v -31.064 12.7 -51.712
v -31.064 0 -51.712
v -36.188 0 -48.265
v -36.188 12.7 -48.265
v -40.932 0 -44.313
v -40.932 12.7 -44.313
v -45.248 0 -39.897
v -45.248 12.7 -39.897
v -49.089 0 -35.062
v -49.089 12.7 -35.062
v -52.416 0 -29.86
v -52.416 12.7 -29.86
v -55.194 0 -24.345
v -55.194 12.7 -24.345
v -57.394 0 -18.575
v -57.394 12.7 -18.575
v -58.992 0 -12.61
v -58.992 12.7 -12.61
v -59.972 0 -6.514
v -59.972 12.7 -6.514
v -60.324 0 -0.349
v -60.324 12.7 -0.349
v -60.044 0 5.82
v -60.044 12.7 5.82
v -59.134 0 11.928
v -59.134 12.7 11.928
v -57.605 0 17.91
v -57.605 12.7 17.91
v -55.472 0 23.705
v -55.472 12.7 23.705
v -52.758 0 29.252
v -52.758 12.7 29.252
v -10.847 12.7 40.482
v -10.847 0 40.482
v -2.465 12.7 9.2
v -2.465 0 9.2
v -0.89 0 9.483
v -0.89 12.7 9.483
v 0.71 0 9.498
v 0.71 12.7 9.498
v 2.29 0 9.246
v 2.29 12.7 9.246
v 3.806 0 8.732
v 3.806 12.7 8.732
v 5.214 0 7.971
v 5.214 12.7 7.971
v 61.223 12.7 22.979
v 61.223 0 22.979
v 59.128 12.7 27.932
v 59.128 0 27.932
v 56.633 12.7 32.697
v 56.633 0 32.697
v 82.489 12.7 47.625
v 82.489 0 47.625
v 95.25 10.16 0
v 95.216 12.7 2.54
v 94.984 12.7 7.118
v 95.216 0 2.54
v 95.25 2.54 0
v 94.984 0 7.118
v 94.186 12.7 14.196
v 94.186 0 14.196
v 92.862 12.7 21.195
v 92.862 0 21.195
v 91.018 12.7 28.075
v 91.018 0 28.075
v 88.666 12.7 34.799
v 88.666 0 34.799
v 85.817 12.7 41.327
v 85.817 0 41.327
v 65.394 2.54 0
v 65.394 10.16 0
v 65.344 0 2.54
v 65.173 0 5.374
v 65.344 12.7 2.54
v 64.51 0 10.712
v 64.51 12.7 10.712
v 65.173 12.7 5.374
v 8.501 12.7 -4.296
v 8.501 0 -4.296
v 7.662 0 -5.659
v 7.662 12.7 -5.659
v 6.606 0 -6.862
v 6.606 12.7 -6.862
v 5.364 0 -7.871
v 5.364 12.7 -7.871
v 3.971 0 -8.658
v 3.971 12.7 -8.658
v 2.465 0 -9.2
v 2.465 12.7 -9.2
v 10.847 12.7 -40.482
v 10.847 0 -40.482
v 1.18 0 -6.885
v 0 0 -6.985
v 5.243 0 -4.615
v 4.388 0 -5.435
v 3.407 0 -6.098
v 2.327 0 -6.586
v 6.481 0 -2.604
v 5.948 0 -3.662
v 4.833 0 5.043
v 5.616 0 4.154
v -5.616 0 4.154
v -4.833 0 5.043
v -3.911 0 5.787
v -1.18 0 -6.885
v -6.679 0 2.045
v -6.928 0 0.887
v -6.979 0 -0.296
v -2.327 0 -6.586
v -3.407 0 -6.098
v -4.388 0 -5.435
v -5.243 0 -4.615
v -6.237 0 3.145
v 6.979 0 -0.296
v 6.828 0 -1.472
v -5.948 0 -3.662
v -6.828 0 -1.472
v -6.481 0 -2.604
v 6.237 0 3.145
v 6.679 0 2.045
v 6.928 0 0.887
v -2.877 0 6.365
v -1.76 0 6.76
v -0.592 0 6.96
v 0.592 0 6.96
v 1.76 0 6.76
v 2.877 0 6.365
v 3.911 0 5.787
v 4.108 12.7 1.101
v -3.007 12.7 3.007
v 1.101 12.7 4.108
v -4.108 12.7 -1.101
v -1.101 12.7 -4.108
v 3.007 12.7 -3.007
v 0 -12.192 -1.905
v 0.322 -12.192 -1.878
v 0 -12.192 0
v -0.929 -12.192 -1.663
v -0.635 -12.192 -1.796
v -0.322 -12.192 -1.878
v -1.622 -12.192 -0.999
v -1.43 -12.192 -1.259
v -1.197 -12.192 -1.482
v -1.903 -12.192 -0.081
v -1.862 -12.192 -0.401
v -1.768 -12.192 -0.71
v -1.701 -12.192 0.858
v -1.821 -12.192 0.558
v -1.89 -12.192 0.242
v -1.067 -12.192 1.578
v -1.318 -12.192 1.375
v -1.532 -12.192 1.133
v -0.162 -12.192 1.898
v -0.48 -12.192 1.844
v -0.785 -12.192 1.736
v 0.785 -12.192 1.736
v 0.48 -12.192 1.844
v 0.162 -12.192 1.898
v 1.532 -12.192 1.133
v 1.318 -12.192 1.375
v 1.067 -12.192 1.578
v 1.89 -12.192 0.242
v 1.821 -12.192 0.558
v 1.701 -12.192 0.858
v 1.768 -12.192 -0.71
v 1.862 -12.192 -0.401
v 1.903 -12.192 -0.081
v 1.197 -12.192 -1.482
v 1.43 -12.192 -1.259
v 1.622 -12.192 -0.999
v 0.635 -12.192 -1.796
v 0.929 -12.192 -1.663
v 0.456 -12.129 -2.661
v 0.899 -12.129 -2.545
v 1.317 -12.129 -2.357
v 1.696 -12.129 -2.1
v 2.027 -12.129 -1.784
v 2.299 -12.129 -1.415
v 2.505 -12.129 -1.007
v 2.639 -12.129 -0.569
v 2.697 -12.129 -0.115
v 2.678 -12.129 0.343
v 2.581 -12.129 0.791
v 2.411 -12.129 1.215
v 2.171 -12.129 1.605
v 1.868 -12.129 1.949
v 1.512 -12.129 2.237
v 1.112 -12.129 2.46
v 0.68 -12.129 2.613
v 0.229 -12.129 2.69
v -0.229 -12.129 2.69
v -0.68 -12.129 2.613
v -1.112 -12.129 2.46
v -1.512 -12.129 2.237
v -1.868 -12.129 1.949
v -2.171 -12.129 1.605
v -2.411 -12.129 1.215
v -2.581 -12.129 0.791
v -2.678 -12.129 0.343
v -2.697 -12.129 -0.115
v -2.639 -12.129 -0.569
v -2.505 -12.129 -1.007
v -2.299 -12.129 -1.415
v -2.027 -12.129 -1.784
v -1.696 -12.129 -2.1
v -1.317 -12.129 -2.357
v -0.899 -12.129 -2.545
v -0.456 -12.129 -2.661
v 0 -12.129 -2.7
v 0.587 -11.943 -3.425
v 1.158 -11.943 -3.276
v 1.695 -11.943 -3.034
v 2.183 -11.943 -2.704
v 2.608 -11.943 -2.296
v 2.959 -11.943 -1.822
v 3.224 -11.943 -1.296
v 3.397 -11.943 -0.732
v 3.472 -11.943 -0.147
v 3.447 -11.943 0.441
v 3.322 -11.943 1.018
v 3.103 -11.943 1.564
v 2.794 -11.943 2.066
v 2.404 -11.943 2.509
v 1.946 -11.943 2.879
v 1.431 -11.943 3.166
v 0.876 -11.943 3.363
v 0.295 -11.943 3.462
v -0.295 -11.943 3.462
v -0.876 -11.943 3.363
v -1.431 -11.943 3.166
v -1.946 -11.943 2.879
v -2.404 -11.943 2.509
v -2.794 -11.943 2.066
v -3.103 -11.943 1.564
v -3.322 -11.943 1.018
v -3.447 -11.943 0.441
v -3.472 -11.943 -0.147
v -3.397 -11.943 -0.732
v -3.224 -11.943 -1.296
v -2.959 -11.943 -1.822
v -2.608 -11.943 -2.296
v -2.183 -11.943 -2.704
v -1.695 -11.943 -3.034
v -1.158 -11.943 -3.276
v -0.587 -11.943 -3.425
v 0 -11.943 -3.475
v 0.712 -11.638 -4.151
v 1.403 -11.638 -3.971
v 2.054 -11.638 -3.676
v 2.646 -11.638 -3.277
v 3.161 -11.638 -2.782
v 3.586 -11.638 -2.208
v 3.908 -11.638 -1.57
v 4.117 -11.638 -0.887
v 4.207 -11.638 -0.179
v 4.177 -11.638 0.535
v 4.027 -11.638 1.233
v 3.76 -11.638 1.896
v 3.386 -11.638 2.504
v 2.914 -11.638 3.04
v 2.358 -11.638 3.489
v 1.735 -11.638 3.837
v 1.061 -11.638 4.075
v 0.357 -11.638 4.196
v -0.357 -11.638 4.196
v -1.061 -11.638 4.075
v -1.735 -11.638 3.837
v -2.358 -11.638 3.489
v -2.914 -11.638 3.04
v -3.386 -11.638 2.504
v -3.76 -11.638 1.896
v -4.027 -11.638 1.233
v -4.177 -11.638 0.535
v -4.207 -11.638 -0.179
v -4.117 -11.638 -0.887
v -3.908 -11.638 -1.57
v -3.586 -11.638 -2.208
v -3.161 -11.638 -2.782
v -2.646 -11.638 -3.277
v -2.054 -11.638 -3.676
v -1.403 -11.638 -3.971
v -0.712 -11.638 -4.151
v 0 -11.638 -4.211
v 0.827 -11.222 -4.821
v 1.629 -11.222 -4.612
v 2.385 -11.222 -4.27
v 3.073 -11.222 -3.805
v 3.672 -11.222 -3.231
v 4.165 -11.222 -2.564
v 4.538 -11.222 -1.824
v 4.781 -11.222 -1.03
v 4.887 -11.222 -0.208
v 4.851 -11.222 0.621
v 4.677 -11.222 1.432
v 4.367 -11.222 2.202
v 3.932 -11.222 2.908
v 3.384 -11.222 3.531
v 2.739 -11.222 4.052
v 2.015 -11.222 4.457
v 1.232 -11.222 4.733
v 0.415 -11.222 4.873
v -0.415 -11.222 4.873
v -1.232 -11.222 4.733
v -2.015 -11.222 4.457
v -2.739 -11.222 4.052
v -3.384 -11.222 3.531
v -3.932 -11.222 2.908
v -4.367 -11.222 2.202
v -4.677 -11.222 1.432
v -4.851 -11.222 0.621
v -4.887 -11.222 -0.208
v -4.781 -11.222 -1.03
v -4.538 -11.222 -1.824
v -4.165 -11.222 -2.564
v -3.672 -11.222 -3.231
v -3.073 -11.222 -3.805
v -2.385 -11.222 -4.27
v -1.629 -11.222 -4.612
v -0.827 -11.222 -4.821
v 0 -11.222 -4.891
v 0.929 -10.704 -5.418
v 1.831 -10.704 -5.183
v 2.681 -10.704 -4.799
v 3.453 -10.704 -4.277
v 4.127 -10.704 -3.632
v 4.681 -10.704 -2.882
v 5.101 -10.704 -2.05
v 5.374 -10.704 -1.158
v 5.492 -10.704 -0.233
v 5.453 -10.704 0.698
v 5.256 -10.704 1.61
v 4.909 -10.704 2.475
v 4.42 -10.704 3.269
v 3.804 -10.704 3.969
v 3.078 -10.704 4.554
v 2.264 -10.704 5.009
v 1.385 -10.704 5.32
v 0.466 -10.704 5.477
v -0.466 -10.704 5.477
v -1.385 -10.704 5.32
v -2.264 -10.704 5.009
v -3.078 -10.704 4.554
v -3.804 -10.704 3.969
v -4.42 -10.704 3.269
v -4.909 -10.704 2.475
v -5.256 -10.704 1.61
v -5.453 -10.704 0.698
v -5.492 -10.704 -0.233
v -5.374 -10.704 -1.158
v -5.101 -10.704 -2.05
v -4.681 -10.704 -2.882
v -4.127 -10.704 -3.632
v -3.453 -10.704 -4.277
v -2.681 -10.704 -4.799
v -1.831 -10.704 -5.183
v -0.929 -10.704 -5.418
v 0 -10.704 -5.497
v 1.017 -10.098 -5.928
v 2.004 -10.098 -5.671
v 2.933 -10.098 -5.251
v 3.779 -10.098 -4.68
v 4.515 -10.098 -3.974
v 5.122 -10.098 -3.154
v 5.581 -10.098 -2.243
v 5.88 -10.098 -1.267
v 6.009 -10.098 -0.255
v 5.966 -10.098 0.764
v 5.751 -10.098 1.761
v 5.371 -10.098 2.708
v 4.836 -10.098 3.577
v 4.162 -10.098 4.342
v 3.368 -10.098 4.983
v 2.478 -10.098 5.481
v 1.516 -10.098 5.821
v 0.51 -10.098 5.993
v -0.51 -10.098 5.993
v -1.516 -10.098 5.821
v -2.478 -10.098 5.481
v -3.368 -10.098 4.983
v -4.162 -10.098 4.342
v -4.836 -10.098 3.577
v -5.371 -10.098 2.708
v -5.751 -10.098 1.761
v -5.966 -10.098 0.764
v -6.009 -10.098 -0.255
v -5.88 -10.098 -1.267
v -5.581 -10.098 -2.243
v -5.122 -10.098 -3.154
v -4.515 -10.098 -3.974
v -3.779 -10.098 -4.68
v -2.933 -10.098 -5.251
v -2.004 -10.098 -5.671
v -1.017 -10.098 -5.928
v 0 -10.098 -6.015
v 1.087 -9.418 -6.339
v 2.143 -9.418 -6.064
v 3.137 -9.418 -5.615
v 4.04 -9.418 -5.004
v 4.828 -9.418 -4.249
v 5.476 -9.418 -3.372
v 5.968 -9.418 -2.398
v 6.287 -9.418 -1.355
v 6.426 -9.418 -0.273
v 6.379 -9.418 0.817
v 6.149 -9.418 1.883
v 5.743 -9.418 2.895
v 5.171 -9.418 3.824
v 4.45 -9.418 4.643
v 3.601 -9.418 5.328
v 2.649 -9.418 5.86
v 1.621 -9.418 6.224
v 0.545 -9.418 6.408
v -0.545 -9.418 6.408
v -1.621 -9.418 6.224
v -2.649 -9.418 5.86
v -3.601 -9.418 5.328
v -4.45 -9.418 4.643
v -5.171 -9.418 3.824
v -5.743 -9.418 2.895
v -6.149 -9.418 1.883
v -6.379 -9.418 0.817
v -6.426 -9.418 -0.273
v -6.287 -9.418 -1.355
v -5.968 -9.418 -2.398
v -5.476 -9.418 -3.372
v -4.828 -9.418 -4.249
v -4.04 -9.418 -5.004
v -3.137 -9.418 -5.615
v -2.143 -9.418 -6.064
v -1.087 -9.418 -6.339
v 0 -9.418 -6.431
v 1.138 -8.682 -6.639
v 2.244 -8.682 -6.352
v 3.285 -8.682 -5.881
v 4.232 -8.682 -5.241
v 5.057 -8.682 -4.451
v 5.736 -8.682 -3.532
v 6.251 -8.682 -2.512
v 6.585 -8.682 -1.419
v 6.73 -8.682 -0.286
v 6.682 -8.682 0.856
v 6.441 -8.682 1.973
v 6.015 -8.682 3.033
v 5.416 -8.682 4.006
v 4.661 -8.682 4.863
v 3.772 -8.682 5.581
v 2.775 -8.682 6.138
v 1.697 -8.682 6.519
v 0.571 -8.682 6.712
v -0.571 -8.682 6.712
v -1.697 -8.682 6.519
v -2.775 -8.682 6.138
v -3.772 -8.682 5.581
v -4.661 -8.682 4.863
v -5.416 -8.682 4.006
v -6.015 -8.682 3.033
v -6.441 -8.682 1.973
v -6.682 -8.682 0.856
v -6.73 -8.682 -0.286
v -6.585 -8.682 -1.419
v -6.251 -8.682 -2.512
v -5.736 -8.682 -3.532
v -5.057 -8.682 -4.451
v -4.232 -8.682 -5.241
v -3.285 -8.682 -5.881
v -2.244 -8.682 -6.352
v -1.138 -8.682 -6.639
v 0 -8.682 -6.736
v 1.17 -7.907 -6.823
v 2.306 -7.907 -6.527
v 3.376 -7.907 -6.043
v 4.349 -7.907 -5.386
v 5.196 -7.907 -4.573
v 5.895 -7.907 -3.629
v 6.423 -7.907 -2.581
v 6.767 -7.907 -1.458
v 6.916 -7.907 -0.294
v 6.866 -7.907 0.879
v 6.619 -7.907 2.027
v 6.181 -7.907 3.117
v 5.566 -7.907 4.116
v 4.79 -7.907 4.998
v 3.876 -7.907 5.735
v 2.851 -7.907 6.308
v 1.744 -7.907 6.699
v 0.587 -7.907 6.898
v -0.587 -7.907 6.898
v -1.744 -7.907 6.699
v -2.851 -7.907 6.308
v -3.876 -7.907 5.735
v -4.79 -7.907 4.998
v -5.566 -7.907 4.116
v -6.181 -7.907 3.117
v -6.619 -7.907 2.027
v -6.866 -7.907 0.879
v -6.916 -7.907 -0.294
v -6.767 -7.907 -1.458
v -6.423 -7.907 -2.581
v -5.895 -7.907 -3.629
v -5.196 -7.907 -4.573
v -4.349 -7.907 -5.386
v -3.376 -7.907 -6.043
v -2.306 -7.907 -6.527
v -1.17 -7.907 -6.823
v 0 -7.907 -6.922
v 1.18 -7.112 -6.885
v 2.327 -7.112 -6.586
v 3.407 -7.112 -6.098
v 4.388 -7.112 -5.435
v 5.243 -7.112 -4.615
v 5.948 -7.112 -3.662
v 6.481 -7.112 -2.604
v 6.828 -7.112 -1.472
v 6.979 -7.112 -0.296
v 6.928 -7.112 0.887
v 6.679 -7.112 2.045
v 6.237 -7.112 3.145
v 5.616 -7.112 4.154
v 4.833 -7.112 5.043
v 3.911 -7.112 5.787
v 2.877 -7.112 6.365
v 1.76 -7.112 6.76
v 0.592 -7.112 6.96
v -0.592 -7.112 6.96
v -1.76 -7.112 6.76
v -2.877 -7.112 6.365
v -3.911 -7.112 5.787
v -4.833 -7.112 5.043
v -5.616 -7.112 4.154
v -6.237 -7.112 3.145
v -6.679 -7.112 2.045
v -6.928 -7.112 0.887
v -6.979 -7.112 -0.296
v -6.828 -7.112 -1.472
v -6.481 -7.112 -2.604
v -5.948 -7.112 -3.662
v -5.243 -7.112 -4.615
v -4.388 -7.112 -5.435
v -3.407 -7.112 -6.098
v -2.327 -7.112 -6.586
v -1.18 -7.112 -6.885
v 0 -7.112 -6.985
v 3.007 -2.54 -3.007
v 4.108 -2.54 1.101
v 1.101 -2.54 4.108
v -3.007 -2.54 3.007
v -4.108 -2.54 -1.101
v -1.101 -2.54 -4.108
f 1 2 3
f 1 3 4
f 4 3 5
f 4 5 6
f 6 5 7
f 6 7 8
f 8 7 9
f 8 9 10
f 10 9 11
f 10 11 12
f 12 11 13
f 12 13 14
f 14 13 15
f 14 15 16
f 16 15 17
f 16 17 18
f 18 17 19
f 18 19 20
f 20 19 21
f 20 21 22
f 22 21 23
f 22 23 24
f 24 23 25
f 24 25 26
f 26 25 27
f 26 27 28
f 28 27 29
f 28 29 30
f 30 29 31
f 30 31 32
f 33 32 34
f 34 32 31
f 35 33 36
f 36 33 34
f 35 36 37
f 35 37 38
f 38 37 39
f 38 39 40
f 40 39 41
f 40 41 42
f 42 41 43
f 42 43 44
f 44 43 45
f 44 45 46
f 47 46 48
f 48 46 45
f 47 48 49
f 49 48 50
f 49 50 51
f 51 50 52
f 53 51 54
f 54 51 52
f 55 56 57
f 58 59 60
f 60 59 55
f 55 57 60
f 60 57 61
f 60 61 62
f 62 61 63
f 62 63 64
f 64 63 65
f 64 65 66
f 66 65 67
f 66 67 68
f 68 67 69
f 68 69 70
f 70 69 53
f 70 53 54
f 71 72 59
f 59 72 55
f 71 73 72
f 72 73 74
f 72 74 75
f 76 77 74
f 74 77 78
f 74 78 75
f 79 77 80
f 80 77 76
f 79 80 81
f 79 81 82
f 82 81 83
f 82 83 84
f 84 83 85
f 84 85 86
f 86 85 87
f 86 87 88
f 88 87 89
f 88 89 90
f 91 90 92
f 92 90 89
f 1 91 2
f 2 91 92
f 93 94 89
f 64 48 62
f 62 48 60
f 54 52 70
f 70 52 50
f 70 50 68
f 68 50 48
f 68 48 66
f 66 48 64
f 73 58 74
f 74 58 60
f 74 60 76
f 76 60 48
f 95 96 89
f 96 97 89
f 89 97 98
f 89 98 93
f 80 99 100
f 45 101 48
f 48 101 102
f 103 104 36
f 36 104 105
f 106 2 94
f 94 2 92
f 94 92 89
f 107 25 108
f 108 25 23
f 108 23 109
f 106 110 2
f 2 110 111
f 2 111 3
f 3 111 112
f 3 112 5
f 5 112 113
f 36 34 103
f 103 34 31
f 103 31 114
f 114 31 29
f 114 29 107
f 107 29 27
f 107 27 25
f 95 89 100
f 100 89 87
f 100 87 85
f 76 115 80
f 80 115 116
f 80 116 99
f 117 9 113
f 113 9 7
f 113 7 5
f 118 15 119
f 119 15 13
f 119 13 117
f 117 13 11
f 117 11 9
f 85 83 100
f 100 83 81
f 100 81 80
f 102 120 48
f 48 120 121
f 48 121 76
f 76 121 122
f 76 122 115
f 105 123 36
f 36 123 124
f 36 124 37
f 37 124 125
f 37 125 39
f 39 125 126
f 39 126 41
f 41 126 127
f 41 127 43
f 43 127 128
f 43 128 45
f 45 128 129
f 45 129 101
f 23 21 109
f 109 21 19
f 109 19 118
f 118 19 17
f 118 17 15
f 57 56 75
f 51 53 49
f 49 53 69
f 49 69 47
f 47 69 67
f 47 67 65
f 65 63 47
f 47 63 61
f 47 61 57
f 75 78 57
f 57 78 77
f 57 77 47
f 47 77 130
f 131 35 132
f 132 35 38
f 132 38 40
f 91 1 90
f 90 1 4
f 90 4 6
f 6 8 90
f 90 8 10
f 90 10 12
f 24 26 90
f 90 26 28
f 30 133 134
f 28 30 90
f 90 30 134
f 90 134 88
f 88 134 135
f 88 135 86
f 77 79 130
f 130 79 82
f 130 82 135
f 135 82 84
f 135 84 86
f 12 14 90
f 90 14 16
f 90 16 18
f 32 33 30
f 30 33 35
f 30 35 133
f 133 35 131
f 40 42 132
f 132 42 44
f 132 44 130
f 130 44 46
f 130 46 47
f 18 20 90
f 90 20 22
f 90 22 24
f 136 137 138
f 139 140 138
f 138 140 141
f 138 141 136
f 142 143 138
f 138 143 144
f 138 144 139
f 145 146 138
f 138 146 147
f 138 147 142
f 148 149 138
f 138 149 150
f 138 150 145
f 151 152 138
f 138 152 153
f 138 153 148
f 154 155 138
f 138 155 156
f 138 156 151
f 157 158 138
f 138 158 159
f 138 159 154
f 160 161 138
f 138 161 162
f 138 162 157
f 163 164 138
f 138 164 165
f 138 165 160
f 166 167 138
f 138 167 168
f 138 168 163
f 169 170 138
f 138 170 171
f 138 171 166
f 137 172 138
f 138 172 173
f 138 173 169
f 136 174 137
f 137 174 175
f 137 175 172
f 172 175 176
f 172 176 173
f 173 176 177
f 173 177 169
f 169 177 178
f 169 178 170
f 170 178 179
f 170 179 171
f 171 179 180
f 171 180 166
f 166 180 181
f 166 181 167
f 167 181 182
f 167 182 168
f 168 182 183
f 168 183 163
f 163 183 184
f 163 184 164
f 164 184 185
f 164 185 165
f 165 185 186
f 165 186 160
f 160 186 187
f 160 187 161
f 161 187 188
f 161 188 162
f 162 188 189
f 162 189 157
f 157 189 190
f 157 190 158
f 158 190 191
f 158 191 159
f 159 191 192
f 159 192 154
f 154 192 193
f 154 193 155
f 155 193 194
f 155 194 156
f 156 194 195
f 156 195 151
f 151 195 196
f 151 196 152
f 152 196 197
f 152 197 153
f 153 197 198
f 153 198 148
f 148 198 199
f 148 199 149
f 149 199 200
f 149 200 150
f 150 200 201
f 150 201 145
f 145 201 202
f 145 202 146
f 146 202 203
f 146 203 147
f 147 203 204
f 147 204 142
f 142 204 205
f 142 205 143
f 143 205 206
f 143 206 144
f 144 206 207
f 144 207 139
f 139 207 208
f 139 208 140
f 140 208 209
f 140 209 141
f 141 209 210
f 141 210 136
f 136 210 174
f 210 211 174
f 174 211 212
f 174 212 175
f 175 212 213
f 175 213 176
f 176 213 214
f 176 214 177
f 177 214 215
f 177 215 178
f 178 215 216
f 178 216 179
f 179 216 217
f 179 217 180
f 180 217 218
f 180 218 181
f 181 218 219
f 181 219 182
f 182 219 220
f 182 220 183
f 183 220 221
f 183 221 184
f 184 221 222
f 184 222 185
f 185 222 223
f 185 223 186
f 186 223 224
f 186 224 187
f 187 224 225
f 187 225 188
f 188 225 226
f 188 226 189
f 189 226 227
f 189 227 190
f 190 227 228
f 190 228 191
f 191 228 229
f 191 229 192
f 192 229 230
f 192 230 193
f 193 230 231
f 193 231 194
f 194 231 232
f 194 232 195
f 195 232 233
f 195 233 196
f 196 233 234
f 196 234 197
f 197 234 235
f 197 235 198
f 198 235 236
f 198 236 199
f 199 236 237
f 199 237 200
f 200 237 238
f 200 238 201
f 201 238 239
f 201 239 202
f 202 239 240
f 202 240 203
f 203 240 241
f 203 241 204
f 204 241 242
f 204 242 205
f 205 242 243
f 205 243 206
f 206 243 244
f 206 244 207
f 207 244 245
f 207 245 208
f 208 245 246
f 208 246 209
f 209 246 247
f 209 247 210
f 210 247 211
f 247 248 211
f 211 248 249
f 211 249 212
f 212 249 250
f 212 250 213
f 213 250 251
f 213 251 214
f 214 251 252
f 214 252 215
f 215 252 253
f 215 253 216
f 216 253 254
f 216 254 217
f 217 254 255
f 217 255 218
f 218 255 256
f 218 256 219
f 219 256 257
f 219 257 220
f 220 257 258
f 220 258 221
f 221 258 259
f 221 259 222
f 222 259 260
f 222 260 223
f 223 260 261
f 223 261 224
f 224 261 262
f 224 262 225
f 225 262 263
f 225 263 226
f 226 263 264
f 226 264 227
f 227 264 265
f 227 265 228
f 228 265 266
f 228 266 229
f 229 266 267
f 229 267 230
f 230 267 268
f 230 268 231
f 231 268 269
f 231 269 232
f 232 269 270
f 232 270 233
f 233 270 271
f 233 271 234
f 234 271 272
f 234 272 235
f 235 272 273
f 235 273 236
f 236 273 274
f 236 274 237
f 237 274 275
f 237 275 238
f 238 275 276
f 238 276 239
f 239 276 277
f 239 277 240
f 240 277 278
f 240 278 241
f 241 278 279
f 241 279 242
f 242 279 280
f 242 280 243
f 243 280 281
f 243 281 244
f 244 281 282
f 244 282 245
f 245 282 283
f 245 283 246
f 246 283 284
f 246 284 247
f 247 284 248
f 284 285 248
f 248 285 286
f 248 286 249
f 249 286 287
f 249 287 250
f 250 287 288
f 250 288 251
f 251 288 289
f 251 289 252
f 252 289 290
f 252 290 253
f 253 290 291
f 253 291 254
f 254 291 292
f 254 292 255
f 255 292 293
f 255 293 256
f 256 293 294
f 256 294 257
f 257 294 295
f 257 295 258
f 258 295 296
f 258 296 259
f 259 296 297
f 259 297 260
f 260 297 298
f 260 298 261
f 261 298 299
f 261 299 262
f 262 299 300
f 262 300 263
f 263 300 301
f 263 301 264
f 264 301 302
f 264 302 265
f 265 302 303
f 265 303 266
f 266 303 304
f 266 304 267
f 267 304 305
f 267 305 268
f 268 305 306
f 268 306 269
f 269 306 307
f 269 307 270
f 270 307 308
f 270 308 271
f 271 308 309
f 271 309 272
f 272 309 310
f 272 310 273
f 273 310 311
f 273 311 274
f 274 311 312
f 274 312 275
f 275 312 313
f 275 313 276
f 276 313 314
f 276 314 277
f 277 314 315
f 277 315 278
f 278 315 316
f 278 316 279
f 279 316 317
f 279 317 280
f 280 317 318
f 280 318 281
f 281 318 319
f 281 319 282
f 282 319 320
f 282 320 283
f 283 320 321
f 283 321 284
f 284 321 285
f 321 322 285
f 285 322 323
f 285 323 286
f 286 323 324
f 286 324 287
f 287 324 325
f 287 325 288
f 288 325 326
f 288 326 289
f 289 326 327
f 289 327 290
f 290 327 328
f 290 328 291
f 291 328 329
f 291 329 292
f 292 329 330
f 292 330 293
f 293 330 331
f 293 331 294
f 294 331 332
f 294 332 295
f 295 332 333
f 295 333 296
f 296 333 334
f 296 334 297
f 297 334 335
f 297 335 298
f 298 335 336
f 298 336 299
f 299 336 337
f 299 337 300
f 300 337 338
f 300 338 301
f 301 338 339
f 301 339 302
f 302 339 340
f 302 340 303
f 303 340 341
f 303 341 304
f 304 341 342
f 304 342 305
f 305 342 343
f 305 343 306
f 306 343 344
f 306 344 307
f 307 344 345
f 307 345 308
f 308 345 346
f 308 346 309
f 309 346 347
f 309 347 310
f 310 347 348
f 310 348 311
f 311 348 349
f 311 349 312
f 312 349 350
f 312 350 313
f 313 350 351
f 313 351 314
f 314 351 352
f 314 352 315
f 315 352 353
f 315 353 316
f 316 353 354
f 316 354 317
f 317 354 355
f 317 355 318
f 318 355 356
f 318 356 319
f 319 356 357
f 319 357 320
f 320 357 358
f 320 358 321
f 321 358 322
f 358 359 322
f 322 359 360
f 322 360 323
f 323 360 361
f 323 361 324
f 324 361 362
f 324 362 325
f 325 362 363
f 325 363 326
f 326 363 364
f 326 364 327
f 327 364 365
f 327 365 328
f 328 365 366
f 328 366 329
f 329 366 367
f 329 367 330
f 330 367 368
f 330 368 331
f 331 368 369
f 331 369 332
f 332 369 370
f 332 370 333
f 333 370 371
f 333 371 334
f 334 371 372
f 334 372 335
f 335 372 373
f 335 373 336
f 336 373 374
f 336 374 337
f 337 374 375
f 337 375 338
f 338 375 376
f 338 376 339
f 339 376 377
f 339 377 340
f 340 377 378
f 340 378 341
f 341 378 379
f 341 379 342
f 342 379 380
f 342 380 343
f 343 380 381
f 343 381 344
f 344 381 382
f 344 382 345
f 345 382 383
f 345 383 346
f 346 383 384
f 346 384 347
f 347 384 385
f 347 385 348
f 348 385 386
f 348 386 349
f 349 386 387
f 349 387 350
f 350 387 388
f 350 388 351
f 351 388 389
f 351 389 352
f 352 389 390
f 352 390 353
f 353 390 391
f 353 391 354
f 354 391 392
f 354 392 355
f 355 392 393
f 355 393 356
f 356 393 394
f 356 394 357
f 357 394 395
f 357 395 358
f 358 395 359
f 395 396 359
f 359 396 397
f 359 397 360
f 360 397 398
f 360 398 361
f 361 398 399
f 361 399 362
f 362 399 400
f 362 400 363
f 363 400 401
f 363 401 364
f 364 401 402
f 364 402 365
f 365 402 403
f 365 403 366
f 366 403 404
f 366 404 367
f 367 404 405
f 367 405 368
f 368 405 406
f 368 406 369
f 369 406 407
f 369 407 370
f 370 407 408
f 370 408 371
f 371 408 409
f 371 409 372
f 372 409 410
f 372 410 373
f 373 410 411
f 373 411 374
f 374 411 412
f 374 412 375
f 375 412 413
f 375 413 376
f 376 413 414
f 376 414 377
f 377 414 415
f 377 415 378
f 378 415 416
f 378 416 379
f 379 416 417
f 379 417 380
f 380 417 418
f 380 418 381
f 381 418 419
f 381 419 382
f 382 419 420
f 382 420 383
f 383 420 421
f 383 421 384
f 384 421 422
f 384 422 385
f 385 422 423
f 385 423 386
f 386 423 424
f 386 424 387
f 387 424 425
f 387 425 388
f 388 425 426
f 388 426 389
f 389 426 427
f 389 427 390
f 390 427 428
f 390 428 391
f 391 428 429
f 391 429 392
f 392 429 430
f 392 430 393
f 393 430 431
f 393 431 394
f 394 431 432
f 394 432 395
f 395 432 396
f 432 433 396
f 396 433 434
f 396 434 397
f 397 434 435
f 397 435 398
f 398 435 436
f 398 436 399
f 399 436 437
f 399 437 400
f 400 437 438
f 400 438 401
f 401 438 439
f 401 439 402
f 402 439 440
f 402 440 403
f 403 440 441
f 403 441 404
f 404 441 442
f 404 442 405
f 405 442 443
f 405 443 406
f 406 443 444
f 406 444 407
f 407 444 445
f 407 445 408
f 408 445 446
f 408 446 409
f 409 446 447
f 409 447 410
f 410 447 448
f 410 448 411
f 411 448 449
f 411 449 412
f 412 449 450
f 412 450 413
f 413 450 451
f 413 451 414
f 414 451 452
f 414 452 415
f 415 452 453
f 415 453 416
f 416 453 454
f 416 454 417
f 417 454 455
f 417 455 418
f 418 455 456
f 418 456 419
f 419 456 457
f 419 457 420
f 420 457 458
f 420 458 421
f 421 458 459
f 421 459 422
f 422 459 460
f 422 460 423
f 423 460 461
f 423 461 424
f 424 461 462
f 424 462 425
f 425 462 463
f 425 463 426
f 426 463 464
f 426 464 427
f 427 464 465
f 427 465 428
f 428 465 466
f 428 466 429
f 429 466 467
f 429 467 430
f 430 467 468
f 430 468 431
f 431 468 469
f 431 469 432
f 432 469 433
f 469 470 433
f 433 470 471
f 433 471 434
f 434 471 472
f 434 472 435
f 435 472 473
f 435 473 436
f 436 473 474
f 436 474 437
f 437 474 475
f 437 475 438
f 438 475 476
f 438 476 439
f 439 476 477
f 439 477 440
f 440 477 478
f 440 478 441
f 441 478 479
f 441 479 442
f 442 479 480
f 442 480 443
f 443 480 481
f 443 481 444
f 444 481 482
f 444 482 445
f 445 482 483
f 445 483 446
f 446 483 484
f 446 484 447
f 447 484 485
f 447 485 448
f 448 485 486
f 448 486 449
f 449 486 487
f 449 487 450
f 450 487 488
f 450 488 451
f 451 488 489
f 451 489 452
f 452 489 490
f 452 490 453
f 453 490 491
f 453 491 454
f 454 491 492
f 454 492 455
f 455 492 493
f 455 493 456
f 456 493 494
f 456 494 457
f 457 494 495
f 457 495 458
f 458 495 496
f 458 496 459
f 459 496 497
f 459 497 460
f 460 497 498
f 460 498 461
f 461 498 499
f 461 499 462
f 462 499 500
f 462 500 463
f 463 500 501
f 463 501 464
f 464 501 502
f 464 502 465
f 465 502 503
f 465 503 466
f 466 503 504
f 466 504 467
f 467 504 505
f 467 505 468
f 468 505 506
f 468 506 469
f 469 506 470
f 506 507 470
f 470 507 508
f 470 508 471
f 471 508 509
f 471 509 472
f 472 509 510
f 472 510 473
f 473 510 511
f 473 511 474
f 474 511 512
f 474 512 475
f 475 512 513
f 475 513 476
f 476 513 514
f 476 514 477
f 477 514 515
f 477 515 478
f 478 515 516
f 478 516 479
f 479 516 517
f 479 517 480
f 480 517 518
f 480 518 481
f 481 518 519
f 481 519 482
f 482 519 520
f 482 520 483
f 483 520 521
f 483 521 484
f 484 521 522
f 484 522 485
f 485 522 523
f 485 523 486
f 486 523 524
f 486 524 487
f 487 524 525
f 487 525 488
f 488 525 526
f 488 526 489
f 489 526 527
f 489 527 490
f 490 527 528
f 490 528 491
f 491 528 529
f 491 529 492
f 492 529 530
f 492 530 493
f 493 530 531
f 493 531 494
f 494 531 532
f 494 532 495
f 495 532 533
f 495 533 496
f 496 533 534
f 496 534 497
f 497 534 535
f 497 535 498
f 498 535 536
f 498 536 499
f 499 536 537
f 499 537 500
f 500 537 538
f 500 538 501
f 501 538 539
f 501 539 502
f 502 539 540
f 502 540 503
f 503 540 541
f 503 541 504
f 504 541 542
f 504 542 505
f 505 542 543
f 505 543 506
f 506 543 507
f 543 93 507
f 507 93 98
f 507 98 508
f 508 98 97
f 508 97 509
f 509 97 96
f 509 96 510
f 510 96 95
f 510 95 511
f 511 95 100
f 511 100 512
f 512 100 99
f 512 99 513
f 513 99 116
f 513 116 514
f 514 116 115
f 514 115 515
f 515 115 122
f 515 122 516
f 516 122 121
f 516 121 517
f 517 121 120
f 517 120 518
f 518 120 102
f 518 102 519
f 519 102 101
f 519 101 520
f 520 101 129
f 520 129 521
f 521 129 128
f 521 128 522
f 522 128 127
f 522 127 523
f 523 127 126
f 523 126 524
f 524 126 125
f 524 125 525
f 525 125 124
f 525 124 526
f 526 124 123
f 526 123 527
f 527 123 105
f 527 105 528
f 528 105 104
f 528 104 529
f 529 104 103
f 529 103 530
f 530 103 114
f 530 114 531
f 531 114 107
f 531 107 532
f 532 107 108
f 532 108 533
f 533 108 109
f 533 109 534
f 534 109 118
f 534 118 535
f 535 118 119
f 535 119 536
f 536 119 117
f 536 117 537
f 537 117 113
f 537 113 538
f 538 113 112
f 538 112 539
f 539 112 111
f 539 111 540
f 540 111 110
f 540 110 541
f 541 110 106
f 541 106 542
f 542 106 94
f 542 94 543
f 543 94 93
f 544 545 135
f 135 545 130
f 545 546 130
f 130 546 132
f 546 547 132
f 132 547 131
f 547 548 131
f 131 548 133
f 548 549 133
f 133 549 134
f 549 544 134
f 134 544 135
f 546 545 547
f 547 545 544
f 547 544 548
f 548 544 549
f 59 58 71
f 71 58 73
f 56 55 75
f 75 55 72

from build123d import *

# Parameters (mm, degrees)
BOSS_EXTRUDE1_DEPTH = 12.7
CUT_EXTRUDE2_DEPTH  = 15.24
CHAMFER1_SIZE       = 2.54


with BuildPart() as part:
    # Sketch1 → Boss-Extrude1 (new body)
    with BuildSketch(Plane(origin=(0, 0, 0), x_dir=(1, 0, 0), z_dir=(0, 1, 0))):
        with BuildLine():
            Line((65.393705137, 0), (95.25, 0))
            ThreePointArc((95.25, 0), (92.004434954, -24.652514046), (82.48891971, -47.625))
            Line((82.48891971, -47.625), (56.632609896, -32.696852568))
            ThreePointArc((56.632609896, -32.696852568), (59.12802761, -27.932293541), (61.223461988, -22.978780943))
            Line((61.223461988, -22.978780943), (5.214104757, -7.971118904))
            ThreePointArc((5.214104757, -7.971118904), (1.505608988, -9.405252074), (-2.465251405, -9.200443495))
            Line((-2.465251405, -9.200443495), (-10.84710618, -40.48195138))
            Line((-10.84710618, -40.48195138), (-52.758242936, -29.251896132))
            ThreePointArc((-52.758242936, -29.251896132), (-58.269475471, 15.613258896), (-31.064030575, 51.712006627))
            Line((-31.064030575, 51.712006627), (10.84710618, 40.48195138))
            Line((10.84710618, 40.48195138), (2.465251405, 9.200443495))
            ThreePointArc((2.465251405, 9.200443495), (6.006521669, 7.392382731), (8.501106629, 4.296139089))
            Line((8.501106629, 4.296139089), (64.510463861, -10.711522949))
            ThreePointArc((64.510463861, -10.711522949), (65.172520756, -5.373938012), (65.393705137, 0))
        make_face()
    extrude(amount=BOSS_EXTRUDE1_DEPTH)

    # Sketch2 → Revolve1 (revolve)
    with BuildSketch(Plane.XY, mode=Mode.PRIVATE) as revolve1_sk:
        with BuildLine():
            Line((6.985, 0), (0, 0))
            Line((0, 0), (0, -12.192))
            Line((0, -12.192), (1.905, -12.192))
            ThreePointArc((1.905, -12.192), (5.497102448, -10.704102448), (6.985, -7.112))
            Line((6.985, -7.112), (6.985, 0))
        make_face()
    revolve(revolve1_sk.sketch.rotate(Axis((0, -12.192, 0), (0, 1, 0)), 90), axis=Axis((0, -12.192, 0), (0, 1, 0)))

    # Sketch5 → Cut-Extrude2 (cut)
    with BuildSketch(Plane(origin=(0, 12.7, 0), x_dir=(1, 0, 0), z_dir=(0, 1, 0))):
        Polygon((3.007156908, 3.007156908), (-1.100695821, 4.107852729), (-4.107852729, 1.100695821), (-3.007156908, -3.007156908), (1.100695821, -4.107852729), (4.107852729, -1.100695821), align=None)
    extrude(amount=-CUT_EXTRUDE2_DEPTH, mode=Mode.SUBTRACT)

    # Chamfer1
    chamfer1_edges = [part.edges().sort_by_distance(p)[0] for p in [
        (80.321852568, 0, 0),
        (80.321852568, 12.7, 0),
    ]]
    chamfer(chamfer1_edges, length=CHAMFER1_SIZE)


solid = part.part
